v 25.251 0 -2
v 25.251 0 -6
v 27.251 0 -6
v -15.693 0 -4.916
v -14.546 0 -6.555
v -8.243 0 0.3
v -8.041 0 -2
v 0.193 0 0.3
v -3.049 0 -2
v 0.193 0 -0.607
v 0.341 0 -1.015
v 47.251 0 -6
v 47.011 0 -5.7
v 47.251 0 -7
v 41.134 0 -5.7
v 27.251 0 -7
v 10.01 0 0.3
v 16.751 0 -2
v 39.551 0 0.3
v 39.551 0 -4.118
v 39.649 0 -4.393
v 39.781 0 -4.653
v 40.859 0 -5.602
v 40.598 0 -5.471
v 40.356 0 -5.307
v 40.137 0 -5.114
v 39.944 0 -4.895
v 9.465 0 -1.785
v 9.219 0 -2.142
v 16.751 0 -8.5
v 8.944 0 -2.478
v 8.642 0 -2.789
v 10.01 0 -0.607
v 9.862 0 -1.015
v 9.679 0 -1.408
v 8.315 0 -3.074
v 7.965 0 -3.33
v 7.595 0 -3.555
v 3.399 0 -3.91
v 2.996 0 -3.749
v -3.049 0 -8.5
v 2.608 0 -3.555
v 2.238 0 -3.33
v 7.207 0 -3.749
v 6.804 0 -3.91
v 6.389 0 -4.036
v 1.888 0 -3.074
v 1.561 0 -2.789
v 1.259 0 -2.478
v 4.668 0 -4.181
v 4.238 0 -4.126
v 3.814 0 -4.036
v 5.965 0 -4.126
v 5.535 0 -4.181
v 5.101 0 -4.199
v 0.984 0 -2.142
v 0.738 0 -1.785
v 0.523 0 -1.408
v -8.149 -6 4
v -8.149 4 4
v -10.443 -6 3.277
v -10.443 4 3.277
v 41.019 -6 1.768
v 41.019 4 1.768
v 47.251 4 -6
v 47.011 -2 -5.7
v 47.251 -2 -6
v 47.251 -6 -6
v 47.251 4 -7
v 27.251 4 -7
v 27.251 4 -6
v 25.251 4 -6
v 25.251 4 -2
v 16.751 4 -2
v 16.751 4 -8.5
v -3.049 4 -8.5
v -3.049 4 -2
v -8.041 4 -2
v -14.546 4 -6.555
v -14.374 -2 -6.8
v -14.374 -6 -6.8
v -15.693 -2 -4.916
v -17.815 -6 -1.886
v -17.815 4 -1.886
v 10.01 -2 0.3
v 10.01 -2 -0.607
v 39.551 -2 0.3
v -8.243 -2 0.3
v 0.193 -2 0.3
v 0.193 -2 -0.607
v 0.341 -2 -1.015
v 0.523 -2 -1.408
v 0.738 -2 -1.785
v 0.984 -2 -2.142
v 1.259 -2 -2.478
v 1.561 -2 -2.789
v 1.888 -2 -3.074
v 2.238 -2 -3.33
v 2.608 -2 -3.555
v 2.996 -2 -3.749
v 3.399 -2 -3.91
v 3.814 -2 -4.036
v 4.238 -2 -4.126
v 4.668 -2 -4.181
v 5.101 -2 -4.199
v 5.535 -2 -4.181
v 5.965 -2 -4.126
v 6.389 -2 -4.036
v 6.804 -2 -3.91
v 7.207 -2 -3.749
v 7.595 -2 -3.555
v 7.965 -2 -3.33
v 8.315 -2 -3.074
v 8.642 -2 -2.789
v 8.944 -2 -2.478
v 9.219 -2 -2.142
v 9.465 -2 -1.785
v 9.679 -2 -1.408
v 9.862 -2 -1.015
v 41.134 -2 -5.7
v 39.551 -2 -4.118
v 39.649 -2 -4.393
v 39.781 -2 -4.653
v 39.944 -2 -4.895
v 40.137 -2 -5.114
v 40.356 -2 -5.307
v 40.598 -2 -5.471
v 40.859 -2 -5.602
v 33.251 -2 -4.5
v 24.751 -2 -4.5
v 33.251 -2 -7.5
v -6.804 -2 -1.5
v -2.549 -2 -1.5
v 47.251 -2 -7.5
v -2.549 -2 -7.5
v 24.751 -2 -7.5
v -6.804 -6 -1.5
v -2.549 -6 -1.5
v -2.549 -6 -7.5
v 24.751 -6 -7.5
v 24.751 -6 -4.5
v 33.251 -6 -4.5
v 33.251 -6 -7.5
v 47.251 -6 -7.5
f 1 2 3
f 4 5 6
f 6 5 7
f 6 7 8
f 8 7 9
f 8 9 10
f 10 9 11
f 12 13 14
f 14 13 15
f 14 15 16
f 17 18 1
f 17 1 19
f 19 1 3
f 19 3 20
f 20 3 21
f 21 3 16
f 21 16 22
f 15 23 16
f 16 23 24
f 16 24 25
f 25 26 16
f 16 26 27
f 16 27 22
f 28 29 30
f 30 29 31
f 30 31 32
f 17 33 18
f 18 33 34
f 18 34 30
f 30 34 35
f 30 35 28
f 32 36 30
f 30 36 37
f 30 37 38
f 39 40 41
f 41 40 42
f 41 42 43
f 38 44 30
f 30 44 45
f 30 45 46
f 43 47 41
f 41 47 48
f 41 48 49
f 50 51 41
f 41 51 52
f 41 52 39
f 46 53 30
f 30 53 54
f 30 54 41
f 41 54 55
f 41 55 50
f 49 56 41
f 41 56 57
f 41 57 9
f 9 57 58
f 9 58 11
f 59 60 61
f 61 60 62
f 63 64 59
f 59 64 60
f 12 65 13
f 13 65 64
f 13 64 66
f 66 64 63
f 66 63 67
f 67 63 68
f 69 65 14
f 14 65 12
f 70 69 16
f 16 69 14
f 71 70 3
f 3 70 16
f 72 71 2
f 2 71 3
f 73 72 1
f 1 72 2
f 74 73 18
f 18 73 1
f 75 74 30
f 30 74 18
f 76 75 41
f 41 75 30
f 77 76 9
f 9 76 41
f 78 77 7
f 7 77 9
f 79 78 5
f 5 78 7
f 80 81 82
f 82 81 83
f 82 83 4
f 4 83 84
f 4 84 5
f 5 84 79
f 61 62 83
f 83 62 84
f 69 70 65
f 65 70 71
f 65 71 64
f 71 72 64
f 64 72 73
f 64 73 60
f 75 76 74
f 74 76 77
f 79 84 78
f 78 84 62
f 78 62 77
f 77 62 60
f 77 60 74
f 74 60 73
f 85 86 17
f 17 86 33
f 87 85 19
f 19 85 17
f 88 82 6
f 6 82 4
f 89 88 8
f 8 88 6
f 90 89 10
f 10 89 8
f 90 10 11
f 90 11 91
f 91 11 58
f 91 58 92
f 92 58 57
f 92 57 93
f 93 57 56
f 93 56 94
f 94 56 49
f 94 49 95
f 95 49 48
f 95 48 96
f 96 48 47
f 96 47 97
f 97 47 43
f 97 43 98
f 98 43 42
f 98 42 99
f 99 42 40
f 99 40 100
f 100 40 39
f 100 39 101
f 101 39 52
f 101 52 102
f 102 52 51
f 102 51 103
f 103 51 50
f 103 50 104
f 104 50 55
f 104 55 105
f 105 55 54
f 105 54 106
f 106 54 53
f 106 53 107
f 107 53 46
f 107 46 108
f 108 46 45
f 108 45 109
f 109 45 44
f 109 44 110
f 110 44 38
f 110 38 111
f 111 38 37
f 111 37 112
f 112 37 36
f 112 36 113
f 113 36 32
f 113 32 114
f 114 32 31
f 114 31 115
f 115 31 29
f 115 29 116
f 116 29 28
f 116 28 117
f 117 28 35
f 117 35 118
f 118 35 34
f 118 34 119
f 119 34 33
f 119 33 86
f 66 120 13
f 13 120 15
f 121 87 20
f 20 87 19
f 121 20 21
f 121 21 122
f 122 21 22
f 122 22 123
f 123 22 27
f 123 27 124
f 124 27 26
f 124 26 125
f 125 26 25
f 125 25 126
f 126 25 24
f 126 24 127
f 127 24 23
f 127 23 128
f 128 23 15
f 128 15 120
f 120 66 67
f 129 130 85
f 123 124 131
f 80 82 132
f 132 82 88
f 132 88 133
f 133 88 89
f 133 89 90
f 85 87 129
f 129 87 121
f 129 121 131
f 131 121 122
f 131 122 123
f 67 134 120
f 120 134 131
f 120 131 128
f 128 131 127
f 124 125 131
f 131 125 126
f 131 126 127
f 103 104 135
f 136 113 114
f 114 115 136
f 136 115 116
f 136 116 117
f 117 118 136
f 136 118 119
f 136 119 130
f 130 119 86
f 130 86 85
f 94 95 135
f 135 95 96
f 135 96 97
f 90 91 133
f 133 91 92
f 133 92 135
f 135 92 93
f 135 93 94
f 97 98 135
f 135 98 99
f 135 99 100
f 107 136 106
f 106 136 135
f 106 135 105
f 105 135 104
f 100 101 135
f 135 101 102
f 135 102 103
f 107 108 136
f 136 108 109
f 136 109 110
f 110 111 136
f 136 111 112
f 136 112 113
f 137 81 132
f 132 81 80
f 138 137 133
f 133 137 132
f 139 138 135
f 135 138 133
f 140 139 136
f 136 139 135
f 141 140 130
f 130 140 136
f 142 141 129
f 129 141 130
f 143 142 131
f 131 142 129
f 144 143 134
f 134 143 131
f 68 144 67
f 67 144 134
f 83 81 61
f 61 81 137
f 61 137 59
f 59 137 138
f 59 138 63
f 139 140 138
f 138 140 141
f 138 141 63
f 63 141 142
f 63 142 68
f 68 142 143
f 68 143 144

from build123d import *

# Parameters (mm, degrees)
BOSS_EXTRUDE1_DEPTH = 4
BOSS_EXTRUDE3_DEPTH = 2
BOSS_EXTRUDE4_DEPTH = 4
BOSS_EXTRUDE5_DEPTH = 2
BOSS_EXTRUDE6_DEPTH = 4


with BuildPart() as part:
    # Sketch1 → Boss-Extrude1 (new body)
    with BuildSketch(Plane(origin=(0, 0, 0), x_dir=(1, 0, 0), z_dir=(0, 1, 0))):
        with BuildLine():
            Line((-14.545827973, 6.554746402), (-17.81521366, 1.88557975))
            Line((-17.81521366, 1.88557975), (-10.442845262, -3.276608177))
            Line((-10.442845262, -3.276608177), (-8.148539516, -4))
            Line((-8.148539516, -4), (41.019227437, -1.767766953))
            Line((41.019227437, -1.767766953), (39.551460484, -0.3))
            Line((39.551460484, -0.3), (39.551460484, 4.117528082))
            ThreePointArc((39.551460484, 4.117528082), (40.137246921, 5.114213562), (41.133932401, 5.7))
            Line((41.133932401, 5.7), (47.010764551, 5.7))
            Line((47.010764551, 5.7), (47.251460484, 6))
            Line((47.251460484, 6), (47.251460484, 7))
            Line((47.251460484, 7), (27.251460484, 7))
            Line((27.251460484, 7), (27.251460484, 6))
            Line((27.251460484, 6), (25.251460484, 6))
            Line((25.251460484, 6), (25.251460484, 2))
            Line((25.251460484, 2), (16.751460484, 2))
            Line((16.751460484, 2), (16.751460484, 8.5))
            Line((16.751460484, 8.5), (-3.048539516, 8.5))
            Line((-3.048539516, 8.5), (-3.048539516, 2))
            Line((-3.048539516, 2), (-8.040975977, 2))
            Line((-8.040975977, 2), (-14.545827973, 6.554746402))
        make_face()
    extrude(amount=BOSS_EXTRUDE1_DEPTH)

    # Sketch1<7> → Boss-Extrude3 (add)
    with BuildSketch(Plane(origin=(0, 0, 0), x_dir=(1, 0, 0), z_dir=(0, 1, 0))):
        with BuildLine():
            ThreePointArc((10.010184156, 0.607136774), (5.101460484, 4.199275448), (0.192736812, 0.607136774))
            Line((0.192736812, 0.607136774), (0.192736812, -0.3))
            Line((0.192736812, -0.3), (-8.243129153, -0.3))
            Line((-8.243129153, -0.3), (-15.692980846, 4.916442314))
            Line((-15.692980846, 4.916442314), (-17.81521366, 1.88557975))
            Line((-17.81521366, 1.88557975), (-10.442845262, -3.276608177))
            Line((-10.442845262, -3.276608177), (-8.148539516, -4))
            Line((-8.148539516, -4), (41.019227437, -1.767766953))
            Line((41.019227437, -1.767766953), (39.551460484, -0.3))
            Line((39.551460484, -0.3), (39.251460484, -0.3))
            Line((39.251460484, -0.3), (39.051460484, -0.3))
            Line((39.051460484, -0.3), (10.010184156, -0.3))
            Line((10.010184156, -0.3), (10.010184156, 0.607136774))
        make_face()
    extrude(amount=-BOSS_EXTRUDE3_DEPTH)

    # Sketch1<8> → Boss-Extrude4 (add)
    with BuildSketch(Plane(origin=(0, 0, 0), x_dir=(1, 0, 0), z_dir=(0, 1, 0))):
        with BuildLine():
            Line((39.551460484, 0), (39.551460484, -0.3))
            Line((39.551460484, -0.3), (41.019227437, -1.767766953))
            Line((41.019227437, -1.767766953), (47.010764551, 5.7))
            Line((47.010764551, 5.7), (41.133932401, 5.7))
            ThreePointArc((41.133932401, 5.7), (40.598184056, 5.470750493), (40.137246921, 5.114213562))
            ThreePointArc((40.137246921, 5.114213562), (39.780709991, 4.653276427), (39.551460484, 4.117528082))
            Line((39.551460484, 4.117528082), (39.551460484, 0))
        make_face()
    extrude(amount=BOSS_EXTRUDE4_DEPTH)

    # Sketch1<9> → Boss-Extrude5 (add)
    with BuildSketch(Plane(origin=(0, 0, 0), x_dir=(1, 0, 0), z_dir=(0, 1, 0))):
        with BuildLine():
            Line((39.551460484, 0), (39.551460484, -0.3))
            Line((39.551460484, -0.3), (41.019227437, -1.767766953))
            Line((41.019227437, -1.767766953), (47.010764551, 5.7))
            Line((47.010764551, 5.7), (41.133932401, 5.7))
            ThreePointArc((41.133932401, 5.7), (40.598184056, 5.470750493), (40.137246921, 5.114213562))
            ThreePointArc((40.137246921, 5.114213562), (39.780709991, 4.653276427), (39.551460484, 4.117528082))
            Line((39.551460484, 4.117528082), (39.551460484, 0))
        make_face()
    extrude(amount=-BOSS_EXTRUDE5_DEPTH)

    # Sketch2 → Boss-Extrude6 (add)
    with BuildSketch(Plane(origin=(0, -2, 0), x_dir=(-1, 0, 0), z_dir=(0, -1, 0))):
        Polygon((-47.251460484, 7), (-47.251460484, 6), (-41.019227437, -1.767766953), (8.148539516, -4), (10.442845262, -3.276608177), (17.81521366, 1.88557975), (15.692980846, 4.916442314), (15.520907915, 5.162187927), (14.545827973, 6.554746402), (14.373755042, 6.800492016), (9.40586076, 3.32193499), (7.517941939, 2), (6.803867935, 1.5), (2.548539516, 1.5), (2.548539516, 7.5), (-16.751460484, 7.5), (-24.751460484, 7.5), (-24.751460484, 4.5), (-28.638302621, 4.5), (-33.251460484, 4.5), (-33.251460484, 7.5), (-37.214164404, 7.5), (-47.251460484, 7.5), align=None)
    extrude(amount=BOSS_EXTRUDE6_DEPTH)


solid = part.part
